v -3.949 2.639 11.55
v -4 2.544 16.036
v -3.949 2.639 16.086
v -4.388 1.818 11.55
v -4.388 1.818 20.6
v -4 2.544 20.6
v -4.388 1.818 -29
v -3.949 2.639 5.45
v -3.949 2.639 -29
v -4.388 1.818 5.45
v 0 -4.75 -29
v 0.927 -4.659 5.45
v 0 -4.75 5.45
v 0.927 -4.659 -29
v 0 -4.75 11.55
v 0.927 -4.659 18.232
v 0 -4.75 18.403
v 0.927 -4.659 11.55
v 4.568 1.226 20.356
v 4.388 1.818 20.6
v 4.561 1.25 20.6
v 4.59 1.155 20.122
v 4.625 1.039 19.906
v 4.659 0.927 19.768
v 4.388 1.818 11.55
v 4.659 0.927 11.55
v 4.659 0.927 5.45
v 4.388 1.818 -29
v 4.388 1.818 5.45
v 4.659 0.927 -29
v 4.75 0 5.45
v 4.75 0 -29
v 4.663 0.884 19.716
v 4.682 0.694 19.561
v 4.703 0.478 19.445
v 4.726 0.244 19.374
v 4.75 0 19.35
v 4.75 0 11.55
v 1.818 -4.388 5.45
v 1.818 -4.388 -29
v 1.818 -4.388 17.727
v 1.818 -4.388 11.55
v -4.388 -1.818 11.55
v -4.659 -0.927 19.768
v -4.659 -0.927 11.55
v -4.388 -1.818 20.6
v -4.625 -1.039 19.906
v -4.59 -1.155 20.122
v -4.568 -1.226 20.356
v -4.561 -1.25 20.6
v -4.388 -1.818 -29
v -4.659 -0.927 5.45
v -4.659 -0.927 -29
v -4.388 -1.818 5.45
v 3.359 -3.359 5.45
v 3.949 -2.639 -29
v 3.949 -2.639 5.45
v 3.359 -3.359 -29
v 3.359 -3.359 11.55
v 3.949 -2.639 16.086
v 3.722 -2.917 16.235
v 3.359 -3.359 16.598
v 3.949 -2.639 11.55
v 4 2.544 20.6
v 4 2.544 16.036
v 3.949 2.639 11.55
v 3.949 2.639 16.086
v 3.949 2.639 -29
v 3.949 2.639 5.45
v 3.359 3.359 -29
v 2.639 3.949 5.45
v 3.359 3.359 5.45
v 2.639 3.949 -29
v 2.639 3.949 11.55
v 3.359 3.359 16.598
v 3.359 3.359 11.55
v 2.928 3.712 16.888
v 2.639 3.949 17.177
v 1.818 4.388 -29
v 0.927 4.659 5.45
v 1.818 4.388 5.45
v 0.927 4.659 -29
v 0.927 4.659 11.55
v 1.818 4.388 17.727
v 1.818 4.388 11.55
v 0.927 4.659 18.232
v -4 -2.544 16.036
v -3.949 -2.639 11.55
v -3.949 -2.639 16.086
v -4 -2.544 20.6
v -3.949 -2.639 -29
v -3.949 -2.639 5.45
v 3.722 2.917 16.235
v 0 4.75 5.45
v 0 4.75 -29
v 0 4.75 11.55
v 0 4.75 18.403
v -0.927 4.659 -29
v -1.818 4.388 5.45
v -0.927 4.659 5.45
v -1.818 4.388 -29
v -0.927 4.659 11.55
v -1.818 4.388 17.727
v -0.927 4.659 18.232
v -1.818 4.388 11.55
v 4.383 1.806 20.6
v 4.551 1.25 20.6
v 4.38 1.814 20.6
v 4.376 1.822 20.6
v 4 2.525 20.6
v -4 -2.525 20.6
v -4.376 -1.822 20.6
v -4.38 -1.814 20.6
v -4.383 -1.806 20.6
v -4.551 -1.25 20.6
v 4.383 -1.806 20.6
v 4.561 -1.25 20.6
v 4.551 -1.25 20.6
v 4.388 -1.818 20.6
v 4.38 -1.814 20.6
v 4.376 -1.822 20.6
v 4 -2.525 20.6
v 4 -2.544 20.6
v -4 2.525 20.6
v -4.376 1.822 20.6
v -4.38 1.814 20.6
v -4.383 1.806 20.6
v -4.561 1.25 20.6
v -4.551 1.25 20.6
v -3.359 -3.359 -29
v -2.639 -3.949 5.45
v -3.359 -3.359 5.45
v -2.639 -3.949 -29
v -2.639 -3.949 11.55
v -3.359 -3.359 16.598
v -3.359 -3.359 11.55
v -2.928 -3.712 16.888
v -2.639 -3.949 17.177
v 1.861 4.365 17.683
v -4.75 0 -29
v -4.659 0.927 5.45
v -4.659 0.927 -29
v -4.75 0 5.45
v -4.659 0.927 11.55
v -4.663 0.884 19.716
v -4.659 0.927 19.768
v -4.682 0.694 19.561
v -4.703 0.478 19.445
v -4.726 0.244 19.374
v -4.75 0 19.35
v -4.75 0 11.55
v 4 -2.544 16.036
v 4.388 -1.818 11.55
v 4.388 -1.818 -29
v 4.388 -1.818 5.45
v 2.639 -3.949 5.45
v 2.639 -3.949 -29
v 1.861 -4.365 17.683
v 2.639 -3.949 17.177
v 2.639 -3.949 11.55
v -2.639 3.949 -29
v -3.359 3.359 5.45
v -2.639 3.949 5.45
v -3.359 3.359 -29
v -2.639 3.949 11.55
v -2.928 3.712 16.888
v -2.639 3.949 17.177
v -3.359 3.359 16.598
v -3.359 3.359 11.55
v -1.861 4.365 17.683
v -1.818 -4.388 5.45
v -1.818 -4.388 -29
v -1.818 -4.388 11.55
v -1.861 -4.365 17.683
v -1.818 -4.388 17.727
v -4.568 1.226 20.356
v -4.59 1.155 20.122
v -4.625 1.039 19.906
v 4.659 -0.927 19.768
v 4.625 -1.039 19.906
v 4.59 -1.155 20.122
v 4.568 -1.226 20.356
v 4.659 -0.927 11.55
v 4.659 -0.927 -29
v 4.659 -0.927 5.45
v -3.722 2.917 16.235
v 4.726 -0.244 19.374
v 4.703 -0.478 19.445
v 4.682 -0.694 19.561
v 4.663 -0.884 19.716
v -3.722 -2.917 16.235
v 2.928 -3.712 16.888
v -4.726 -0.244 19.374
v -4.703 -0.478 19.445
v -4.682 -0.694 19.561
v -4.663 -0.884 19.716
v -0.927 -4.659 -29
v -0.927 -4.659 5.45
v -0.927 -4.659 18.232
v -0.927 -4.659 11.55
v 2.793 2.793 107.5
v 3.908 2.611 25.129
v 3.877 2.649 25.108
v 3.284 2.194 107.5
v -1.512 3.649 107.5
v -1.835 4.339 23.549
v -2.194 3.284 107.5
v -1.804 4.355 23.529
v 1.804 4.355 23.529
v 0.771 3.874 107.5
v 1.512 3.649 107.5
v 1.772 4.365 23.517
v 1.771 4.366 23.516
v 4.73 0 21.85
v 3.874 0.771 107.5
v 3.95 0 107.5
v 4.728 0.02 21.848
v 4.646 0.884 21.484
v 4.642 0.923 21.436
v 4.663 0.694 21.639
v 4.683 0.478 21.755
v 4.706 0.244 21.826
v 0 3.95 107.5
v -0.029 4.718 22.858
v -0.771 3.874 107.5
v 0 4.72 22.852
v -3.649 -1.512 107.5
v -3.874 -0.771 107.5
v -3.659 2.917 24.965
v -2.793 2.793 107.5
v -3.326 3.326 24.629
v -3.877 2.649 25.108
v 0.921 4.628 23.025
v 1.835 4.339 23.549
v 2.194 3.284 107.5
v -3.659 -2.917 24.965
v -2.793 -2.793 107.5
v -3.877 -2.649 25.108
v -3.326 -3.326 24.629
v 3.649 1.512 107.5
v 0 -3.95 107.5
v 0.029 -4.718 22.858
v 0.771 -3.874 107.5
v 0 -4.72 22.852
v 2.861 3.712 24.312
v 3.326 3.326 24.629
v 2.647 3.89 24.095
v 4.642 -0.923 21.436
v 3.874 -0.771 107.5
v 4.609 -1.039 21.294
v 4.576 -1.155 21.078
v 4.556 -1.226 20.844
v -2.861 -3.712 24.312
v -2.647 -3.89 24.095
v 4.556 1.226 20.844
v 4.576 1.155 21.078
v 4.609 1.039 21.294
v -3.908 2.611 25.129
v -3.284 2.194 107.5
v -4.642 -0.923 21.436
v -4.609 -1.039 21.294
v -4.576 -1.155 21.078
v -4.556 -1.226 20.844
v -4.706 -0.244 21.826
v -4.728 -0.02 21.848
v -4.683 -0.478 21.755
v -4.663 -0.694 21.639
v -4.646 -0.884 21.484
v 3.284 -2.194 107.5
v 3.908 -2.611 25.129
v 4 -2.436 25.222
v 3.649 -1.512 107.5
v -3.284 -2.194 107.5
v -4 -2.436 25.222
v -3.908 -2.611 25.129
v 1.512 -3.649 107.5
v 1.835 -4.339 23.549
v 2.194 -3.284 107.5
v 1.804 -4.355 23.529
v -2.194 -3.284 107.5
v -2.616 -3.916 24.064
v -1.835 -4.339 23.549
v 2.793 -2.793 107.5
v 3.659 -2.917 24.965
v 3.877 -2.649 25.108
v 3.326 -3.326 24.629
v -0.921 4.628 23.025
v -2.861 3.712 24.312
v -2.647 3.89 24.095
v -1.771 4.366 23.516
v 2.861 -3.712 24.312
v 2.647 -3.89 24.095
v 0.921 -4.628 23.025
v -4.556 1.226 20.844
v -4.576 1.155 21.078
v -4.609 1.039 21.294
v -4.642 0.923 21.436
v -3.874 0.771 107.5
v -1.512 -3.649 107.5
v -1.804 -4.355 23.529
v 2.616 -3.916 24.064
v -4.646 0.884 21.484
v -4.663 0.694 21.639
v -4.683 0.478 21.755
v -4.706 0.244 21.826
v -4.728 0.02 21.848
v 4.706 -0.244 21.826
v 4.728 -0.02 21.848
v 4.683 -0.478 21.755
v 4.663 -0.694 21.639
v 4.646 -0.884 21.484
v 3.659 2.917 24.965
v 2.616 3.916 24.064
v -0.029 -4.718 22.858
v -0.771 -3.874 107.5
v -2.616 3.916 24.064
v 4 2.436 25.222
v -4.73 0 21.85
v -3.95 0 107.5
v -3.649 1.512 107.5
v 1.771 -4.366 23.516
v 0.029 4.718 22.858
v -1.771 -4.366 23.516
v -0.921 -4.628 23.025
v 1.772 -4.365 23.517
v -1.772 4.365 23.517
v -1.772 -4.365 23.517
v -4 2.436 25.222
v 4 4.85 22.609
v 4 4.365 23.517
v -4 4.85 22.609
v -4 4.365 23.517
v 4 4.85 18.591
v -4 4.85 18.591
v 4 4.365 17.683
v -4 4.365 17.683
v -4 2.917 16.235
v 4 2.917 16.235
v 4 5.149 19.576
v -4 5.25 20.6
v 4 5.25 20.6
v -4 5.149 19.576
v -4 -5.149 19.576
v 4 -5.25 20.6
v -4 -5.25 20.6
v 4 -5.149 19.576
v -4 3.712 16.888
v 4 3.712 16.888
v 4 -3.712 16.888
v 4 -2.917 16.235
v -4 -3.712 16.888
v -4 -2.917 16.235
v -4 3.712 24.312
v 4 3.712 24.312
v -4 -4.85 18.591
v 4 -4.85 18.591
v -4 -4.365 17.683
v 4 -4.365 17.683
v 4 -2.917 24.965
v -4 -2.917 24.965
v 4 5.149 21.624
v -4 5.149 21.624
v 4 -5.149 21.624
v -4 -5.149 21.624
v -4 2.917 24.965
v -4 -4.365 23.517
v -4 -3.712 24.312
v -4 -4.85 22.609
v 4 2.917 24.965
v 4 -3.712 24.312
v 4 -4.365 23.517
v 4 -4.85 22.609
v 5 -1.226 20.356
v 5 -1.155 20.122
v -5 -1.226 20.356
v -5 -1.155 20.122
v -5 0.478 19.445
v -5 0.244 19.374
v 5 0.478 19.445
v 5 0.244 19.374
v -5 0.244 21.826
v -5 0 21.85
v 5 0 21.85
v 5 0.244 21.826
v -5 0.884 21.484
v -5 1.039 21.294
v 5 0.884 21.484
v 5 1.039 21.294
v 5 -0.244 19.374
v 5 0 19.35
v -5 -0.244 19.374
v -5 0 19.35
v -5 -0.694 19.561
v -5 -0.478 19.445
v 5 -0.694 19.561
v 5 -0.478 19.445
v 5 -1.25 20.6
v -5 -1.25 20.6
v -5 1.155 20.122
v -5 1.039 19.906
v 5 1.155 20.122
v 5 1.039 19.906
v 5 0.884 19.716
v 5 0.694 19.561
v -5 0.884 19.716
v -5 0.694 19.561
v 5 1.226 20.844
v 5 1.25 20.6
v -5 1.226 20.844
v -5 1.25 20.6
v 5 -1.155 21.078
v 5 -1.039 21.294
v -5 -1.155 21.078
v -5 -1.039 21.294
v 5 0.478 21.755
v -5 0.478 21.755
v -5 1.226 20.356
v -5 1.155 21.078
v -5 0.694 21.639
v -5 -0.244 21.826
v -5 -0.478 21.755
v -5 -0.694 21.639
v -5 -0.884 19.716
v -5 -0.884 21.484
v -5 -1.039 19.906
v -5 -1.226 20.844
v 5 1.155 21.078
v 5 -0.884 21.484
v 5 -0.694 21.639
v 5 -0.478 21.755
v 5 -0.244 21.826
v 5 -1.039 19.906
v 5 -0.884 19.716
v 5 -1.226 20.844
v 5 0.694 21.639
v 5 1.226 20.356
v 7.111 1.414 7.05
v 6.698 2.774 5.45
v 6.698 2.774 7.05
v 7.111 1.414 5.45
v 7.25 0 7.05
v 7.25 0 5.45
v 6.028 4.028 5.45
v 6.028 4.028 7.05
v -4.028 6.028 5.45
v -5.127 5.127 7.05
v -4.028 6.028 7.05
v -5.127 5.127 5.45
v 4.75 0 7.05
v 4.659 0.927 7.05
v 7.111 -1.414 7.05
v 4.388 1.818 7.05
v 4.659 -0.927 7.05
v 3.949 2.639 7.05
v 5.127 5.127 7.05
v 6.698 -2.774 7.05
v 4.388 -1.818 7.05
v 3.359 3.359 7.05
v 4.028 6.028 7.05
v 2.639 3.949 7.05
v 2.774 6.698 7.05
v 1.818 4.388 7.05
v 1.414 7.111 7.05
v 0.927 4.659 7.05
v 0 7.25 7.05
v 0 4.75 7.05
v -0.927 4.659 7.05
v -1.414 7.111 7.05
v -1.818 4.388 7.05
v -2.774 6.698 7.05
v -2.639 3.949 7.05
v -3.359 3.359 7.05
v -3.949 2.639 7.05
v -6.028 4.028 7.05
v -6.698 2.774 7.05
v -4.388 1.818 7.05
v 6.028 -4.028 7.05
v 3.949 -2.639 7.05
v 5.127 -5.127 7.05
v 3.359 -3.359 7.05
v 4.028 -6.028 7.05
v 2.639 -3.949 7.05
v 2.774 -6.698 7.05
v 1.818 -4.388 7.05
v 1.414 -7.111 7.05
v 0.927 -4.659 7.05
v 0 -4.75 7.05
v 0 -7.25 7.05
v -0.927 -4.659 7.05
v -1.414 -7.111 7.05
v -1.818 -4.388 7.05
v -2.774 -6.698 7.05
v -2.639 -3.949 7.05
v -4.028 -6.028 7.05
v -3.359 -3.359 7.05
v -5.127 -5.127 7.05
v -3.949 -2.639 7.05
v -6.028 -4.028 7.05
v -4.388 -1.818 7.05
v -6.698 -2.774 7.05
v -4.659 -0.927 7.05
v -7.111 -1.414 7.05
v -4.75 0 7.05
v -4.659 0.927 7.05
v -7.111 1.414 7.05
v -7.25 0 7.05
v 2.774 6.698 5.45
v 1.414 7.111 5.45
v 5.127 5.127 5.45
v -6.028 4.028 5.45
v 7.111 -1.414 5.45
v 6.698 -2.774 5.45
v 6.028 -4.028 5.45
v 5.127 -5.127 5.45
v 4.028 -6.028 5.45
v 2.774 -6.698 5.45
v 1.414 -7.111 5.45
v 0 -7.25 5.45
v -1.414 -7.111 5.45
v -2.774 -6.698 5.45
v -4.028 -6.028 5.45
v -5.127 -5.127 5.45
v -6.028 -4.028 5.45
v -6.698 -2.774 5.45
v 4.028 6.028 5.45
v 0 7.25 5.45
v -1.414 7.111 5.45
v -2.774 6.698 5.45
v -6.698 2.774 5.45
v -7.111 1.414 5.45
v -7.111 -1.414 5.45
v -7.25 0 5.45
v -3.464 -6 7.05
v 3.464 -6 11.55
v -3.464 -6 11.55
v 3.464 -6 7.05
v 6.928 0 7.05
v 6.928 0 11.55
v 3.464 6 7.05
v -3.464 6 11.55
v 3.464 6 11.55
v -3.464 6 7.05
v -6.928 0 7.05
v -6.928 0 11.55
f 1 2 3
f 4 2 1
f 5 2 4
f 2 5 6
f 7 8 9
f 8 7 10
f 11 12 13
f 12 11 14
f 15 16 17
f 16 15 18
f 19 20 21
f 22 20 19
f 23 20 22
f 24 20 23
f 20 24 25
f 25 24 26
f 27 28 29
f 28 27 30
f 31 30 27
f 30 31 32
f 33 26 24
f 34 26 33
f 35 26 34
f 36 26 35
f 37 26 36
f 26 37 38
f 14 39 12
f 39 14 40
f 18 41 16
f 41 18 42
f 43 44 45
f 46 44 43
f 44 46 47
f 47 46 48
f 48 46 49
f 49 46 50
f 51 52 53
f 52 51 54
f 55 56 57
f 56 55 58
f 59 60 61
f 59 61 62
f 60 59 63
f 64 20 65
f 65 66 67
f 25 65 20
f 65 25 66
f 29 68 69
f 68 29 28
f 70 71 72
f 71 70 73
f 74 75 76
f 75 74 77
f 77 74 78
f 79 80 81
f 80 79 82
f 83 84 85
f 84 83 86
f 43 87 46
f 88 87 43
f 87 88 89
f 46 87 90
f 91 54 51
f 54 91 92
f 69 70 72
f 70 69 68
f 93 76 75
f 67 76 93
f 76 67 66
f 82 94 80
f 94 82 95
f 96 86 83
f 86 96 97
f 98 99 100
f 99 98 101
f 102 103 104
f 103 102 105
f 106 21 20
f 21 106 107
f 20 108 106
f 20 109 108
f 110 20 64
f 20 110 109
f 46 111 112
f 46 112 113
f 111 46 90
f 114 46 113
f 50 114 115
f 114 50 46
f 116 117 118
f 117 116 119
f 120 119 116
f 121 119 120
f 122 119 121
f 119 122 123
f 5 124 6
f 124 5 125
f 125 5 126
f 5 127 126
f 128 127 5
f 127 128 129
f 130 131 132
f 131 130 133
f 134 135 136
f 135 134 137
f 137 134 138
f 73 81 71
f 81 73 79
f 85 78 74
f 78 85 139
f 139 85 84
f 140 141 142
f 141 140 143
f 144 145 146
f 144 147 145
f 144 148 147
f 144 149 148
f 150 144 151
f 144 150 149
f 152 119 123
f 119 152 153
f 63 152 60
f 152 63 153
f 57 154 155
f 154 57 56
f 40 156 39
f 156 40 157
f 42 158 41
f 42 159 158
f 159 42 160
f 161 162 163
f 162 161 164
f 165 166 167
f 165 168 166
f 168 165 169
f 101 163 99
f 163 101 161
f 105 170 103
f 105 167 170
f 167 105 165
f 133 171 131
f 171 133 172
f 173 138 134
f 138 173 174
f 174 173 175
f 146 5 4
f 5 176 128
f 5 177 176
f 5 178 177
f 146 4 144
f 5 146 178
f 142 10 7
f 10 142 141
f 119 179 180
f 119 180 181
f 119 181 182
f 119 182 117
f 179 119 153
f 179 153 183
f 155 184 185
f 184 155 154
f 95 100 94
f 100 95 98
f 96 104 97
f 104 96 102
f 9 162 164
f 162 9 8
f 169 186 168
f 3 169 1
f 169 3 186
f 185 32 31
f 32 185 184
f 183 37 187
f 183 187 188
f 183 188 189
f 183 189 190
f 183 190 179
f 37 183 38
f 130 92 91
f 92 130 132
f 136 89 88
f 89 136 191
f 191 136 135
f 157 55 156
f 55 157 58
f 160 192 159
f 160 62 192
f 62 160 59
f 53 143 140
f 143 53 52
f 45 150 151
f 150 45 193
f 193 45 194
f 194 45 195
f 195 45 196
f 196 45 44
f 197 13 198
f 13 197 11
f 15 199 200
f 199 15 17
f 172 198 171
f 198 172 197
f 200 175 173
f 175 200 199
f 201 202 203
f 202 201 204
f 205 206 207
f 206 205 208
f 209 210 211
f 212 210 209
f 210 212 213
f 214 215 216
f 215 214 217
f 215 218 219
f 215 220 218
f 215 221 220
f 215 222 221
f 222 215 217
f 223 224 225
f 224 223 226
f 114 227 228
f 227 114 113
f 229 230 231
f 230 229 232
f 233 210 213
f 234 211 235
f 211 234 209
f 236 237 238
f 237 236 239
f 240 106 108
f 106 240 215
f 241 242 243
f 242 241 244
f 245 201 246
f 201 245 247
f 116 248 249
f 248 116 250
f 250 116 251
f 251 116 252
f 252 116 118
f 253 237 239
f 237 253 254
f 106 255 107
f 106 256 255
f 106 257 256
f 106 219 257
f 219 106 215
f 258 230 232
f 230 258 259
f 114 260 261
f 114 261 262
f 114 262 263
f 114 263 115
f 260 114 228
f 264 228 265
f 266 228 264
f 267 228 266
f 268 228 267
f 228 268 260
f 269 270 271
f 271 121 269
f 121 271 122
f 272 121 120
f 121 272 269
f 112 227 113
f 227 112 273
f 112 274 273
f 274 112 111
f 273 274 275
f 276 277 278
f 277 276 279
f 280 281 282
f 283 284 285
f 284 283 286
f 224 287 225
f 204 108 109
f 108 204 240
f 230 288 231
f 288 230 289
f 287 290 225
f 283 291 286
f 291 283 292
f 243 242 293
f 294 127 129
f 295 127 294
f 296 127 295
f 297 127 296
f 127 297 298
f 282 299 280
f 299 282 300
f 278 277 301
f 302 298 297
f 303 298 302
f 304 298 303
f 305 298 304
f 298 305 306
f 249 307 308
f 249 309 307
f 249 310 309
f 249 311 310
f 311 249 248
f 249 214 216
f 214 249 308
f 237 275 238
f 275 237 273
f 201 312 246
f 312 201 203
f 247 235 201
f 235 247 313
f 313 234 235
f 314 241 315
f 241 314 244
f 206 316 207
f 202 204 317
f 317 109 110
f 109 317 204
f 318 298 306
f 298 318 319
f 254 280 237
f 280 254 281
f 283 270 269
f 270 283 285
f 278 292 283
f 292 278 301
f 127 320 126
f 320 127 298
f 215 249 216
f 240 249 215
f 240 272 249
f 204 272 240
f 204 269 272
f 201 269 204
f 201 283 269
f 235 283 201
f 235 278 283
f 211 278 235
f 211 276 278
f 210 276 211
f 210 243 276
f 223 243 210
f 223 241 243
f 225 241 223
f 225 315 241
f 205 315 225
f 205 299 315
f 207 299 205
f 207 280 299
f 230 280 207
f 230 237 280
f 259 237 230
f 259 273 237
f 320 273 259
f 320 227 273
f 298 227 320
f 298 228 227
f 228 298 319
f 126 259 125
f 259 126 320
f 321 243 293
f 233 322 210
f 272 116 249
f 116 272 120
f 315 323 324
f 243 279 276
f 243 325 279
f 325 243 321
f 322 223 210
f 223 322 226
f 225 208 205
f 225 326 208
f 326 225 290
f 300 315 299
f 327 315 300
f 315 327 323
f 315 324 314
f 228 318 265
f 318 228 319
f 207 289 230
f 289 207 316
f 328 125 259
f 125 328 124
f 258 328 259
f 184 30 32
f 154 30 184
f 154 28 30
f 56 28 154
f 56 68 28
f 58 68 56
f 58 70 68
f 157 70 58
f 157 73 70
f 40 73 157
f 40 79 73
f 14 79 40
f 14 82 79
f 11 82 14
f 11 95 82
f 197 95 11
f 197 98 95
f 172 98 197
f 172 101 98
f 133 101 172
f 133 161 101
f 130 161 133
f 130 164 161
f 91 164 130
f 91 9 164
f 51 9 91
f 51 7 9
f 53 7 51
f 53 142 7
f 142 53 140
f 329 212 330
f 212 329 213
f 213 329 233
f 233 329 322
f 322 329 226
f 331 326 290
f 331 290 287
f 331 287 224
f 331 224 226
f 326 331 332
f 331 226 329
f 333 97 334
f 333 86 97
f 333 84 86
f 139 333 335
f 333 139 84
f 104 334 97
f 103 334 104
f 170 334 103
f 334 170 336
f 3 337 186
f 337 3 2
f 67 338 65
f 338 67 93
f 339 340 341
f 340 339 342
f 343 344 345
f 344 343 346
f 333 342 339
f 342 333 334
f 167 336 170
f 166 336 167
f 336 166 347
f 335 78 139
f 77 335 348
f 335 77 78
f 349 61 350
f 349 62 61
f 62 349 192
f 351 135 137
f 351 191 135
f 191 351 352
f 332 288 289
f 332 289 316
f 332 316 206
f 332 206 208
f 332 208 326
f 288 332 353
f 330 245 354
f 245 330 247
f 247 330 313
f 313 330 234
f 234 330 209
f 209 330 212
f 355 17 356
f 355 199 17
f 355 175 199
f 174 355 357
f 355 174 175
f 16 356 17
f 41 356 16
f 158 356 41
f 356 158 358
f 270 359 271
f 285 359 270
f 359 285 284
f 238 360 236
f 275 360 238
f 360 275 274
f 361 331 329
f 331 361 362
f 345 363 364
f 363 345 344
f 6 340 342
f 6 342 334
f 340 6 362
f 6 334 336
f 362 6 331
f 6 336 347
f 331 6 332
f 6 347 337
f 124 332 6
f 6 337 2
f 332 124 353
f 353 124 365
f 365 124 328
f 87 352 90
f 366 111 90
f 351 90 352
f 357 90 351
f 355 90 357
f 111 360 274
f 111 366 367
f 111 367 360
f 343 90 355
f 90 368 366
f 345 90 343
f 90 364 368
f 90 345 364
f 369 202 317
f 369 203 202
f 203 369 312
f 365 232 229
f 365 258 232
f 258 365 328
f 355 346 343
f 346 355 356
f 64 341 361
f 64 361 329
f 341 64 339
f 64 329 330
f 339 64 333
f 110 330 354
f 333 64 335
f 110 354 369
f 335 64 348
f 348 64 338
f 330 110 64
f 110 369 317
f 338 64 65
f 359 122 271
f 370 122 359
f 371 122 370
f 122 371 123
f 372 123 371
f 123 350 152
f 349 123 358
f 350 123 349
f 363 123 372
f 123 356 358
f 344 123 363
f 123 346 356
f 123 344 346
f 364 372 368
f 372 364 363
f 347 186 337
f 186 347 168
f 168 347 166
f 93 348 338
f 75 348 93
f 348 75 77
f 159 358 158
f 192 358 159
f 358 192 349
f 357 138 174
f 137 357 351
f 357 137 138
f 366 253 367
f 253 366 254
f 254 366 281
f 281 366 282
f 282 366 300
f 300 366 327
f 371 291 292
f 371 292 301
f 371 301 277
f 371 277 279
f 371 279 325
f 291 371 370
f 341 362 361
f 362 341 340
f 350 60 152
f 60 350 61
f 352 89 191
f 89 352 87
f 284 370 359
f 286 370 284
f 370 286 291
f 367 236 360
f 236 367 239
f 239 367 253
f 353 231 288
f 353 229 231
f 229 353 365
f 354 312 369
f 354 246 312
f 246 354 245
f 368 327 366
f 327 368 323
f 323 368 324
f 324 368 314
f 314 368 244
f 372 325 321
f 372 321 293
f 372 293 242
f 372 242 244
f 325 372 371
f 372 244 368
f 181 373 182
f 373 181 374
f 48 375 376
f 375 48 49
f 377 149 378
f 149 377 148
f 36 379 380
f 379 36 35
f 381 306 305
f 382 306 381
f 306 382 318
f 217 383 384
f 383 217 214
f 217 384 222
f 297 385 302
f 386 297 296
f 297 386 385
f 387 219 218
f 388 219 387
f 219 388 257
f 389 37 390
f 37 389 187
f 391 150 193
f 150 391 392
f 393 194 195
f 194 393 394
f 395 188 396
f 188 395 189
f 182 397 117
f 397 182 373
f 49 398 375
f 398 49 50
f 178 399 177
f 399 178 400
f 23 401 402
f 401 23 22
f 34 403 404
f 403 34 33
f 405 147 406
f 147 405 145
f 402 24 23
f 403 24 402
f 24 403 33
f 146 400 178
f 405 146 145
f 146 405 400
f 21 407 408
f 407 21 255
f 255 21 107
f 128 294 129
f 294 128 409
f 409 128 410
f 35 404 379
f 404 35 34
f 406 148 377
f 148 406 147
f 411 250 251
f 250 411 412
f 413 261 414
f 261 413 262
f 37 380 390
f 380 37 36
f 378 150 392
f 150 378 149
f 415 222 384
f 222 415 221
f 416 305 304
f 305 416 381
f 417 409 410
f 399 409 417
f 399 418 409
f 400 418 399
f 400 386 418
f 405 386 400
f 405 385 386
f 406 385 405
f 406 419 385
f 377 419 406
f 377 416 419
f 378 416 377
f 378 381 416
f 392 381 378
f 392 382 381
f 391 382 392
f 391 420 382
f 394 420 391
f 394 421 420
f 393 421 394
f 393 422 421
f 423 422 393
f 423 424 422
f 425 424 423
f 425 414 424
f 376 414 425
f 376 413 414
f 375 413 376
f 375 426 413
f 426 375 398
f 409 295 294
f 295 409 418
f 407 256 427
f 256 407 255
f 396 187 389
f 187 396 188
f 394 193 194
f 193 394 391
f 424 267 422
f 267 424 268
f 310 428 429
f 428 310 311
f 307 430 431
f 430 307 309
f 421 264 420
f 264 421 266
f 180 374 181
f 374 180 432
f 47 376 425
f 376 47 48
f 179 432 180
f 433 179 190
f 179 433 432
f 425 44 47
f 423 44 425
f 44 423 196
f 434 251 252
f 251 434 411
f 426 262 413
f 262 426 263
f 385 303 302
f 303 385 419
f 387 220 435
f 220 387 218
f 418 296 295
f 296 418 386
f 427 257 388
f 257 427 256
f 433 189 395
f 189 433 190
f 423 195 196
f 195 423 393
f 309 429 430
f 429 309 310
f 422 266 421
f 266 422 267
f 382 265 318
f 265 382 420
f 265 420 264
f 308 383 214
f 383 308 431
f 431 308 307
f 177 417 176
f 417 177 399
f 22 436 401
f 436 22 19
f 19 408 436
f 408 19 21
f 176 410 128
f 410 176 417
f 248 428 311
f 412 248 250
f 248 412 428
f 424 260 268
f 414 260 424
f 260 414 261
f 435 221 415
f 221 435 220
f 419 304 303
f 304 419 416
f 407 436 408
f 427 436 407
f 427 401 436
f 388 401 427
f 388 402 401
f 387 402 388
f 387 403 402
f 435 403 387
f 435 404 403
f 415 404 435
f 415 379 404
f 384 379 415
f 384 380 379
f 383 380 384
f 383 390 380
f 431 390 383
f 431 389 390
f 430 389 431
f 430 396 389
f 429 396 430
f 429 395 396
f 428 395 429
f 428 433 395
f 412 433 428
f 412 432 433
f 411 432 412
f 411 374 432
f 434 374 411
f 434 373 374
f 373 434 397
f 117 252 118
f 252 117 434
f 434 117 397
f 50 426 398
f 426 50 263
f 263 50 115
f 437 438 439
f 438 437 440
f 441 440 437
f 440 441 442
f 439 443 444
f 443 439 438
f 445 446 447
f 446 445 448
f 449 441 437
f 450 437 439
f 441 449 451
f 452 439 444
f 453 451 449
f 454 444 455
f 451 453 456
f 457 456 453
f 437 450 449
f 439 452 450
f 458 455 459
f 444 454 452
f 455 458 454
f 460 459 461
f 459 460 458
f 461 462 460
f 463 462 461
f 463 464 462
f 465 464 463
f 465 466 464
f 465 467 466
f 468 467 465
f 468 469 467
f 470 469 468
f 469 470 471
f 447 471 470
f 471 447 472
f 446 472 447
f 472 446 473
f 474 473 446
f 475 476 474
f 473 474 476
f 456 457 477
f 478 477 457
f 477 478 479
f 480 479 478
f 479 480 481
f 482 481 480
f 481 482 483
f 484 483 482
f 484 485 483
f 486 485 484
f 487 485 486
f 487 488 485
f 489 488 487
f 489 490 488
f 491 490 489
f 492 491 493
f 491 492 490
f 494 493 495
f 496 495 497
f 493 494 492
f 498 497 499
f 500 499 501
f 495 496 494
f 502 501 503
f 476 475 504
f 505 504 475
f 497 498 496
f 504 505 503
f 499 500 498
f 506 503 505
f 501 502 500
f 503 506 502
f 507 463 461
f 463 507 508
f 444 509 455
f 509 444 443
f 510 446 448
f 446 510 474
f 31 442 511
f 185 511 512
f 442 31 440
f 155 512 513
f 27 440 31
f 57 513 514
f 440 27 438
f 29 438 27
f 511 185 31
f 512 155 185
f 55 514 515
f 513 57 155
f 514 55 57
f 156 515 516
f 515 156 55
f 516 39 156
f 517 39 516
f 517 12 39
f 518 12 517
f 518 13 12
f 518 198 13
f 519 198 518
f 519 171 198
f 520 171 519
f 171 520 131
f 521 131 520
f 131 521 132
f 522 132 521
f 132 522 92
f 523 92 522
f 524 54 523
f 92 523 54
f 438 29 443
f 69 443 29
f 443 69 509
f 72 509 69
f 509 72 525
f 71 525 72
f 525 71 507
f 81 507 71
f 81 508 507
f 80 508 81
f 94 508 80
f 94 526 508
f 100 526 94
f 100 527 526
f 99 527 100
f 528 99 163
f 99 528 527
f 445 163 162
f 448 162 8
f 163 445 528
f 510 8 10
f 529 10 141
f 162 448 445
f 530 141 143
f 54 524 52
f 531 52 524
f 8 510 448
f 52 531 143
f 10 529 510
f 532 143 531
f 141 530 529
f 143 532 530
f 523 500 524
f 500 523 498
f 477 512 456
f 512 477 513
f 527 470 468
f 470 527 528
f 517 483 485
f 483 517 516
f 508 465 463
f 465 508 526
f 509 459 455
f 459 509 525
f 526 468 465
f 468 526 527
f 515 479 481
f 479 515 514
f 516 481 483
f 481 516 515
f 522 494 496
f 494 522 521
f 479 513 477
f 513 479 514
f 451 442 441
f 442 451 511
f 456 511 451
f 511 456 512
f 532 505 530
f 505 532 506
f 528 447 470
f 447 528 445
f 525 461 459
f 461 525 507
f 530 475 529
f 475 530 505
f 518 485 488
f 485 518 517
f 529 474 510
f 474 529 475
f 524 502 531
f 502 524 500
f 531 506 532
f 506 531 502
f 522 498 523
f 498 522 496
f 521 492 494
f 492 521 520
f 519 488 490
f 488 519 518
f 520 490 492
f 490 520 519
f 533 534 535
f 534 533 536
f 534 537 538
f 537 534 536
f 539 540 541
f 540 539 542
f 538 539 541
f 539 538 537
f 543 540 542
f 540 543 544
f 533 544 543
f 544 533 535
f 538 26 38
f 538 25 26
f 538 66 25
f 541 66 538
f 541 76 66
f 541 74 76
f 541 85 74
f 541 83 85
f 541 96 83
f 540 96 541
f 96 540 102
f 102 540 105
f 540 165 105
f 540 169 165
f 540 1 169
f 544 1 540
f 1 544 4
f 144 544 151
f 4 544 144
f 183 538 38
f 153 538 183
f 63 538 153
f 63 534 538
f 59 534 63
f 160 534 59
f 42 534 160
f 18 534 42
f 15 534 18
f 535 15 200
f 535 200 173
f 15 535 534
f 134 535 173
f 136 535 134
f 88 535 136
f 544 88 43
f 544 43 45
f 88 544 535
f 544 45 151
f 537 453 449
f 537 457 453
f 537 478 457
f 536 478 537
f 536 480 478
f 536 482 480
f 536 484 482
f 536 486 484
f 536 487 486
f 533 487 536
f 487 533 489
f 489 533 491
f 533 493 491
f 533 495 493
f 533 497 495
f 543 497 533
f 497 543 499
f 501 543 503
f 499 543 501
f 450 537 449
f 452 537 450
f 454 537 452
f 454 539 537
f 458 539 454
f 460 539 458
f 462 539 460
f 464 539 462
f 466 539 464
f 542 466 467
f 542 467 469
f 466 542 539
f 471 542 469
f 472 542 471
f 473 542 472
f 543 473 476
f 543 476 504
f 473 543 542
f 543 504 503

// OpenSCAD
// Folding whip RF antenna module (mm)
// Clean, self-contained  generated from provided JSON plan + sketch-grounded dimensions.

$fn=32;

// -------------------------
// Parameters (from plan JSON)
// -------------------------
L_total = 108.5; //[54.25:217:0.1]
D_base = 9.5; //[4.75:19:0.1]
D_tip = 7.9; //[3.95:15.8:0.1]
L_fixed = 20.6; //[10.3:41.2:0.1]
pivot_from_base = 20.6; //[10.3:41.2:0.1]
panel_gap = 6.45; //[3.225:12.9:0.05]
pivot_axis_D = 2.5; //[1.25:5:0.05]
hinge_body_L = 8; //[4:16:0.1]
hinge_body_D = 10.5; //[5.25:21:0.1]
overlap = 1; //[0.5:2:0.1]
washer_OD = 14.5; //[7.25:29:0.1]
washer_thk = 1.6; //[0.8:3.2:0.05]
nut_AF = 12; //[6:24:0.1]
nut_thk = 4.5; //[2.25:9:0.1]
base_post_L = 30; //[15:60:0.1]

// -------------------------
// Derived helpers
// -------------------------
eps = 0.01;

module _hex_prism(af=12, h=4.5, center=true) {
  // Regular hex with across-flats = af
  r = af / sqrt(3);
  cylinder(h=h, r=r, $fn=6, center=center);
}

module _washer(od=14.5, id=2.7, thk=1.6) {
  color([0.75, 0.75, 0.77])  // aluminum-ish
  difference() {
    cylinder(h=thk, r=od/2, center=true);
    cylinder(h=thk + 2*eps, r=id/2, center=true);
  }
}

module _nut(af=12, thk=4.5, hole_d=2.7) {
  color([0.4, 0.4, 0.43])  // steel-ish
  difference() {
    _hex_prism(af=af, h=thk, center=true);
    cylinder(h=thk + 2*eps, r=hole_d/2, center=true, $fn=32);
  }
}

module _whip_fixed_section() {
  color([0.15, 0.15, 0.17])  // black anodized look
  translate([0, 0, L_fixed/2])
    cylinder(h=L_fixed, r=D_base/2, center=true);
}

module _whip_tapered_section() {
  // Taper from base diameter to tip diameter over remaining length
  color([0.15, 0.15, 0.17])
  translate([0, 0, L_fixed + (L_total - L_fixed)/2 - overlap])
    cylinder(h=(L_total - L_fixed), r1=D_base/2, r2=D_tip/2, center=true);
}

module _panel_gap_spacer_region() {
  // Spacer region near base (same OD as base)
  color([0.2, 0.2, 0.22])
  translate([0, 0, panel_gap/2])
    cylinder(h=panel_gap, r=D_base/2, center=true);
}

module _base_post() {
  // Below panel: simplified post (thread not modeled; sketch shows threads but plan says simplified)
  color([0.15, 0.15, 0.17])
  translate([0, 0, -base_post_L/2 + overlap])
    cylinder(h=base_post_L, r=D_base/2, center=true);
}

module _hinge_knuckle_detail() {
  // Knuckle cylinder oriented along X at pivot location
  color([0.12, 0.12, 0.14])
  translate([0, 0, pivot_from_base])
    rotate([0, 90, 0])
      difference() {
        cylinder(h=hinge_body_L, r=hinge_body_D/2, center=true);
        // pivot bore
        cylinder(h=hinge_body_L + 2*eps, r=pivot_axis_D/2, center=true, $fn=32);
      }
}

module _pivot_hinge_axis() {
  // Pin through knuckle (visible)
  color([0.75, 0.75, 0.77])
  translate([0, 0, pivot_from_base])
    rotate([0, 90, 0])
      cylinder(h=hinge_body_L + 2*overlap, r=pivot_axis_D/2, center=true, $fn=32);
}

module _fasteners_stack() {
  // Washer + nut above panel gap (simplified but recognizable)
  // Place centered on Z like plan; use pivot_axis_D as through-hole proxy.
  translate([0, 0, panel_gap + washer_thk/2 - overlap])
    _washer(od=washer_OD, id=pivot_axis_D + 0.2, thk=washer_thk);

  translate([0, 0, panel_gap + washer_thk + nut_thk/2 - overlap])
    _nut(af=nut_AF, thk=nut_thk, hole_d=pivot_axis_D + 0.2);
}

// -------------------------
// Base shapes (as modules for clarity)
// -------------------------
module bs_fixed_straight_section() { _whip_fixed_section(); }
module bs_whip_body_tapered() { _whip_tapered_section(); }
module bs_panel_gap_spacer_region() { _panel_gap_spacer_region(); }
module bs_base_post() { _base_post(); }
module bs_washer() {
  translate([0, 0, panel_gap + washer_thk/2 - overlap])
    _washer(od=washer_OD, id=pivot_axis_D + 0.2, thk=washer_thk);
}
module bs_nut_proxy() {
  // Use hex nut instead of box proxy for realism (still matches plan intent)
  translate([0, 0, panel_gap + washer_thk + nut_thk/2 - overlap])
    _nut(af=nut_AF, thk=nut_thk, hole_d=pivot_axis_D + 0.2);
}
module bs_hinge_knuckle_detail() { _hinge_knuckle_detail(); }
module bs_pivot_hinge_axis() { _pivot_hinge_axis(); }

// -------------------------
// Operations (per plan sequence)
// -------------------------
module op_union_whip_and_base() {
  union() {
    bs_fixed_straight_section();
    bs_whip_body_tapered();
    bs_panel_gap_spacer_region();
    bs_base_post();
  }
}

module op_union_hinge() {
  union() {
    bs_hinge_knuckle_detail();
    bs_pivot_hinge_axis();
  }
}

module op_union_fasteners() {
  union() {
    bs_washer();
    bs_nut_proxy();
  }
}

module op_union_complete_model() {
  union() {
    op_union_whip_and_base();
    op_union_hinge();
    op_union_fasteners();
  }
}

// -------------------------
// Final output
// -------------------------
op_union_complete_model();
